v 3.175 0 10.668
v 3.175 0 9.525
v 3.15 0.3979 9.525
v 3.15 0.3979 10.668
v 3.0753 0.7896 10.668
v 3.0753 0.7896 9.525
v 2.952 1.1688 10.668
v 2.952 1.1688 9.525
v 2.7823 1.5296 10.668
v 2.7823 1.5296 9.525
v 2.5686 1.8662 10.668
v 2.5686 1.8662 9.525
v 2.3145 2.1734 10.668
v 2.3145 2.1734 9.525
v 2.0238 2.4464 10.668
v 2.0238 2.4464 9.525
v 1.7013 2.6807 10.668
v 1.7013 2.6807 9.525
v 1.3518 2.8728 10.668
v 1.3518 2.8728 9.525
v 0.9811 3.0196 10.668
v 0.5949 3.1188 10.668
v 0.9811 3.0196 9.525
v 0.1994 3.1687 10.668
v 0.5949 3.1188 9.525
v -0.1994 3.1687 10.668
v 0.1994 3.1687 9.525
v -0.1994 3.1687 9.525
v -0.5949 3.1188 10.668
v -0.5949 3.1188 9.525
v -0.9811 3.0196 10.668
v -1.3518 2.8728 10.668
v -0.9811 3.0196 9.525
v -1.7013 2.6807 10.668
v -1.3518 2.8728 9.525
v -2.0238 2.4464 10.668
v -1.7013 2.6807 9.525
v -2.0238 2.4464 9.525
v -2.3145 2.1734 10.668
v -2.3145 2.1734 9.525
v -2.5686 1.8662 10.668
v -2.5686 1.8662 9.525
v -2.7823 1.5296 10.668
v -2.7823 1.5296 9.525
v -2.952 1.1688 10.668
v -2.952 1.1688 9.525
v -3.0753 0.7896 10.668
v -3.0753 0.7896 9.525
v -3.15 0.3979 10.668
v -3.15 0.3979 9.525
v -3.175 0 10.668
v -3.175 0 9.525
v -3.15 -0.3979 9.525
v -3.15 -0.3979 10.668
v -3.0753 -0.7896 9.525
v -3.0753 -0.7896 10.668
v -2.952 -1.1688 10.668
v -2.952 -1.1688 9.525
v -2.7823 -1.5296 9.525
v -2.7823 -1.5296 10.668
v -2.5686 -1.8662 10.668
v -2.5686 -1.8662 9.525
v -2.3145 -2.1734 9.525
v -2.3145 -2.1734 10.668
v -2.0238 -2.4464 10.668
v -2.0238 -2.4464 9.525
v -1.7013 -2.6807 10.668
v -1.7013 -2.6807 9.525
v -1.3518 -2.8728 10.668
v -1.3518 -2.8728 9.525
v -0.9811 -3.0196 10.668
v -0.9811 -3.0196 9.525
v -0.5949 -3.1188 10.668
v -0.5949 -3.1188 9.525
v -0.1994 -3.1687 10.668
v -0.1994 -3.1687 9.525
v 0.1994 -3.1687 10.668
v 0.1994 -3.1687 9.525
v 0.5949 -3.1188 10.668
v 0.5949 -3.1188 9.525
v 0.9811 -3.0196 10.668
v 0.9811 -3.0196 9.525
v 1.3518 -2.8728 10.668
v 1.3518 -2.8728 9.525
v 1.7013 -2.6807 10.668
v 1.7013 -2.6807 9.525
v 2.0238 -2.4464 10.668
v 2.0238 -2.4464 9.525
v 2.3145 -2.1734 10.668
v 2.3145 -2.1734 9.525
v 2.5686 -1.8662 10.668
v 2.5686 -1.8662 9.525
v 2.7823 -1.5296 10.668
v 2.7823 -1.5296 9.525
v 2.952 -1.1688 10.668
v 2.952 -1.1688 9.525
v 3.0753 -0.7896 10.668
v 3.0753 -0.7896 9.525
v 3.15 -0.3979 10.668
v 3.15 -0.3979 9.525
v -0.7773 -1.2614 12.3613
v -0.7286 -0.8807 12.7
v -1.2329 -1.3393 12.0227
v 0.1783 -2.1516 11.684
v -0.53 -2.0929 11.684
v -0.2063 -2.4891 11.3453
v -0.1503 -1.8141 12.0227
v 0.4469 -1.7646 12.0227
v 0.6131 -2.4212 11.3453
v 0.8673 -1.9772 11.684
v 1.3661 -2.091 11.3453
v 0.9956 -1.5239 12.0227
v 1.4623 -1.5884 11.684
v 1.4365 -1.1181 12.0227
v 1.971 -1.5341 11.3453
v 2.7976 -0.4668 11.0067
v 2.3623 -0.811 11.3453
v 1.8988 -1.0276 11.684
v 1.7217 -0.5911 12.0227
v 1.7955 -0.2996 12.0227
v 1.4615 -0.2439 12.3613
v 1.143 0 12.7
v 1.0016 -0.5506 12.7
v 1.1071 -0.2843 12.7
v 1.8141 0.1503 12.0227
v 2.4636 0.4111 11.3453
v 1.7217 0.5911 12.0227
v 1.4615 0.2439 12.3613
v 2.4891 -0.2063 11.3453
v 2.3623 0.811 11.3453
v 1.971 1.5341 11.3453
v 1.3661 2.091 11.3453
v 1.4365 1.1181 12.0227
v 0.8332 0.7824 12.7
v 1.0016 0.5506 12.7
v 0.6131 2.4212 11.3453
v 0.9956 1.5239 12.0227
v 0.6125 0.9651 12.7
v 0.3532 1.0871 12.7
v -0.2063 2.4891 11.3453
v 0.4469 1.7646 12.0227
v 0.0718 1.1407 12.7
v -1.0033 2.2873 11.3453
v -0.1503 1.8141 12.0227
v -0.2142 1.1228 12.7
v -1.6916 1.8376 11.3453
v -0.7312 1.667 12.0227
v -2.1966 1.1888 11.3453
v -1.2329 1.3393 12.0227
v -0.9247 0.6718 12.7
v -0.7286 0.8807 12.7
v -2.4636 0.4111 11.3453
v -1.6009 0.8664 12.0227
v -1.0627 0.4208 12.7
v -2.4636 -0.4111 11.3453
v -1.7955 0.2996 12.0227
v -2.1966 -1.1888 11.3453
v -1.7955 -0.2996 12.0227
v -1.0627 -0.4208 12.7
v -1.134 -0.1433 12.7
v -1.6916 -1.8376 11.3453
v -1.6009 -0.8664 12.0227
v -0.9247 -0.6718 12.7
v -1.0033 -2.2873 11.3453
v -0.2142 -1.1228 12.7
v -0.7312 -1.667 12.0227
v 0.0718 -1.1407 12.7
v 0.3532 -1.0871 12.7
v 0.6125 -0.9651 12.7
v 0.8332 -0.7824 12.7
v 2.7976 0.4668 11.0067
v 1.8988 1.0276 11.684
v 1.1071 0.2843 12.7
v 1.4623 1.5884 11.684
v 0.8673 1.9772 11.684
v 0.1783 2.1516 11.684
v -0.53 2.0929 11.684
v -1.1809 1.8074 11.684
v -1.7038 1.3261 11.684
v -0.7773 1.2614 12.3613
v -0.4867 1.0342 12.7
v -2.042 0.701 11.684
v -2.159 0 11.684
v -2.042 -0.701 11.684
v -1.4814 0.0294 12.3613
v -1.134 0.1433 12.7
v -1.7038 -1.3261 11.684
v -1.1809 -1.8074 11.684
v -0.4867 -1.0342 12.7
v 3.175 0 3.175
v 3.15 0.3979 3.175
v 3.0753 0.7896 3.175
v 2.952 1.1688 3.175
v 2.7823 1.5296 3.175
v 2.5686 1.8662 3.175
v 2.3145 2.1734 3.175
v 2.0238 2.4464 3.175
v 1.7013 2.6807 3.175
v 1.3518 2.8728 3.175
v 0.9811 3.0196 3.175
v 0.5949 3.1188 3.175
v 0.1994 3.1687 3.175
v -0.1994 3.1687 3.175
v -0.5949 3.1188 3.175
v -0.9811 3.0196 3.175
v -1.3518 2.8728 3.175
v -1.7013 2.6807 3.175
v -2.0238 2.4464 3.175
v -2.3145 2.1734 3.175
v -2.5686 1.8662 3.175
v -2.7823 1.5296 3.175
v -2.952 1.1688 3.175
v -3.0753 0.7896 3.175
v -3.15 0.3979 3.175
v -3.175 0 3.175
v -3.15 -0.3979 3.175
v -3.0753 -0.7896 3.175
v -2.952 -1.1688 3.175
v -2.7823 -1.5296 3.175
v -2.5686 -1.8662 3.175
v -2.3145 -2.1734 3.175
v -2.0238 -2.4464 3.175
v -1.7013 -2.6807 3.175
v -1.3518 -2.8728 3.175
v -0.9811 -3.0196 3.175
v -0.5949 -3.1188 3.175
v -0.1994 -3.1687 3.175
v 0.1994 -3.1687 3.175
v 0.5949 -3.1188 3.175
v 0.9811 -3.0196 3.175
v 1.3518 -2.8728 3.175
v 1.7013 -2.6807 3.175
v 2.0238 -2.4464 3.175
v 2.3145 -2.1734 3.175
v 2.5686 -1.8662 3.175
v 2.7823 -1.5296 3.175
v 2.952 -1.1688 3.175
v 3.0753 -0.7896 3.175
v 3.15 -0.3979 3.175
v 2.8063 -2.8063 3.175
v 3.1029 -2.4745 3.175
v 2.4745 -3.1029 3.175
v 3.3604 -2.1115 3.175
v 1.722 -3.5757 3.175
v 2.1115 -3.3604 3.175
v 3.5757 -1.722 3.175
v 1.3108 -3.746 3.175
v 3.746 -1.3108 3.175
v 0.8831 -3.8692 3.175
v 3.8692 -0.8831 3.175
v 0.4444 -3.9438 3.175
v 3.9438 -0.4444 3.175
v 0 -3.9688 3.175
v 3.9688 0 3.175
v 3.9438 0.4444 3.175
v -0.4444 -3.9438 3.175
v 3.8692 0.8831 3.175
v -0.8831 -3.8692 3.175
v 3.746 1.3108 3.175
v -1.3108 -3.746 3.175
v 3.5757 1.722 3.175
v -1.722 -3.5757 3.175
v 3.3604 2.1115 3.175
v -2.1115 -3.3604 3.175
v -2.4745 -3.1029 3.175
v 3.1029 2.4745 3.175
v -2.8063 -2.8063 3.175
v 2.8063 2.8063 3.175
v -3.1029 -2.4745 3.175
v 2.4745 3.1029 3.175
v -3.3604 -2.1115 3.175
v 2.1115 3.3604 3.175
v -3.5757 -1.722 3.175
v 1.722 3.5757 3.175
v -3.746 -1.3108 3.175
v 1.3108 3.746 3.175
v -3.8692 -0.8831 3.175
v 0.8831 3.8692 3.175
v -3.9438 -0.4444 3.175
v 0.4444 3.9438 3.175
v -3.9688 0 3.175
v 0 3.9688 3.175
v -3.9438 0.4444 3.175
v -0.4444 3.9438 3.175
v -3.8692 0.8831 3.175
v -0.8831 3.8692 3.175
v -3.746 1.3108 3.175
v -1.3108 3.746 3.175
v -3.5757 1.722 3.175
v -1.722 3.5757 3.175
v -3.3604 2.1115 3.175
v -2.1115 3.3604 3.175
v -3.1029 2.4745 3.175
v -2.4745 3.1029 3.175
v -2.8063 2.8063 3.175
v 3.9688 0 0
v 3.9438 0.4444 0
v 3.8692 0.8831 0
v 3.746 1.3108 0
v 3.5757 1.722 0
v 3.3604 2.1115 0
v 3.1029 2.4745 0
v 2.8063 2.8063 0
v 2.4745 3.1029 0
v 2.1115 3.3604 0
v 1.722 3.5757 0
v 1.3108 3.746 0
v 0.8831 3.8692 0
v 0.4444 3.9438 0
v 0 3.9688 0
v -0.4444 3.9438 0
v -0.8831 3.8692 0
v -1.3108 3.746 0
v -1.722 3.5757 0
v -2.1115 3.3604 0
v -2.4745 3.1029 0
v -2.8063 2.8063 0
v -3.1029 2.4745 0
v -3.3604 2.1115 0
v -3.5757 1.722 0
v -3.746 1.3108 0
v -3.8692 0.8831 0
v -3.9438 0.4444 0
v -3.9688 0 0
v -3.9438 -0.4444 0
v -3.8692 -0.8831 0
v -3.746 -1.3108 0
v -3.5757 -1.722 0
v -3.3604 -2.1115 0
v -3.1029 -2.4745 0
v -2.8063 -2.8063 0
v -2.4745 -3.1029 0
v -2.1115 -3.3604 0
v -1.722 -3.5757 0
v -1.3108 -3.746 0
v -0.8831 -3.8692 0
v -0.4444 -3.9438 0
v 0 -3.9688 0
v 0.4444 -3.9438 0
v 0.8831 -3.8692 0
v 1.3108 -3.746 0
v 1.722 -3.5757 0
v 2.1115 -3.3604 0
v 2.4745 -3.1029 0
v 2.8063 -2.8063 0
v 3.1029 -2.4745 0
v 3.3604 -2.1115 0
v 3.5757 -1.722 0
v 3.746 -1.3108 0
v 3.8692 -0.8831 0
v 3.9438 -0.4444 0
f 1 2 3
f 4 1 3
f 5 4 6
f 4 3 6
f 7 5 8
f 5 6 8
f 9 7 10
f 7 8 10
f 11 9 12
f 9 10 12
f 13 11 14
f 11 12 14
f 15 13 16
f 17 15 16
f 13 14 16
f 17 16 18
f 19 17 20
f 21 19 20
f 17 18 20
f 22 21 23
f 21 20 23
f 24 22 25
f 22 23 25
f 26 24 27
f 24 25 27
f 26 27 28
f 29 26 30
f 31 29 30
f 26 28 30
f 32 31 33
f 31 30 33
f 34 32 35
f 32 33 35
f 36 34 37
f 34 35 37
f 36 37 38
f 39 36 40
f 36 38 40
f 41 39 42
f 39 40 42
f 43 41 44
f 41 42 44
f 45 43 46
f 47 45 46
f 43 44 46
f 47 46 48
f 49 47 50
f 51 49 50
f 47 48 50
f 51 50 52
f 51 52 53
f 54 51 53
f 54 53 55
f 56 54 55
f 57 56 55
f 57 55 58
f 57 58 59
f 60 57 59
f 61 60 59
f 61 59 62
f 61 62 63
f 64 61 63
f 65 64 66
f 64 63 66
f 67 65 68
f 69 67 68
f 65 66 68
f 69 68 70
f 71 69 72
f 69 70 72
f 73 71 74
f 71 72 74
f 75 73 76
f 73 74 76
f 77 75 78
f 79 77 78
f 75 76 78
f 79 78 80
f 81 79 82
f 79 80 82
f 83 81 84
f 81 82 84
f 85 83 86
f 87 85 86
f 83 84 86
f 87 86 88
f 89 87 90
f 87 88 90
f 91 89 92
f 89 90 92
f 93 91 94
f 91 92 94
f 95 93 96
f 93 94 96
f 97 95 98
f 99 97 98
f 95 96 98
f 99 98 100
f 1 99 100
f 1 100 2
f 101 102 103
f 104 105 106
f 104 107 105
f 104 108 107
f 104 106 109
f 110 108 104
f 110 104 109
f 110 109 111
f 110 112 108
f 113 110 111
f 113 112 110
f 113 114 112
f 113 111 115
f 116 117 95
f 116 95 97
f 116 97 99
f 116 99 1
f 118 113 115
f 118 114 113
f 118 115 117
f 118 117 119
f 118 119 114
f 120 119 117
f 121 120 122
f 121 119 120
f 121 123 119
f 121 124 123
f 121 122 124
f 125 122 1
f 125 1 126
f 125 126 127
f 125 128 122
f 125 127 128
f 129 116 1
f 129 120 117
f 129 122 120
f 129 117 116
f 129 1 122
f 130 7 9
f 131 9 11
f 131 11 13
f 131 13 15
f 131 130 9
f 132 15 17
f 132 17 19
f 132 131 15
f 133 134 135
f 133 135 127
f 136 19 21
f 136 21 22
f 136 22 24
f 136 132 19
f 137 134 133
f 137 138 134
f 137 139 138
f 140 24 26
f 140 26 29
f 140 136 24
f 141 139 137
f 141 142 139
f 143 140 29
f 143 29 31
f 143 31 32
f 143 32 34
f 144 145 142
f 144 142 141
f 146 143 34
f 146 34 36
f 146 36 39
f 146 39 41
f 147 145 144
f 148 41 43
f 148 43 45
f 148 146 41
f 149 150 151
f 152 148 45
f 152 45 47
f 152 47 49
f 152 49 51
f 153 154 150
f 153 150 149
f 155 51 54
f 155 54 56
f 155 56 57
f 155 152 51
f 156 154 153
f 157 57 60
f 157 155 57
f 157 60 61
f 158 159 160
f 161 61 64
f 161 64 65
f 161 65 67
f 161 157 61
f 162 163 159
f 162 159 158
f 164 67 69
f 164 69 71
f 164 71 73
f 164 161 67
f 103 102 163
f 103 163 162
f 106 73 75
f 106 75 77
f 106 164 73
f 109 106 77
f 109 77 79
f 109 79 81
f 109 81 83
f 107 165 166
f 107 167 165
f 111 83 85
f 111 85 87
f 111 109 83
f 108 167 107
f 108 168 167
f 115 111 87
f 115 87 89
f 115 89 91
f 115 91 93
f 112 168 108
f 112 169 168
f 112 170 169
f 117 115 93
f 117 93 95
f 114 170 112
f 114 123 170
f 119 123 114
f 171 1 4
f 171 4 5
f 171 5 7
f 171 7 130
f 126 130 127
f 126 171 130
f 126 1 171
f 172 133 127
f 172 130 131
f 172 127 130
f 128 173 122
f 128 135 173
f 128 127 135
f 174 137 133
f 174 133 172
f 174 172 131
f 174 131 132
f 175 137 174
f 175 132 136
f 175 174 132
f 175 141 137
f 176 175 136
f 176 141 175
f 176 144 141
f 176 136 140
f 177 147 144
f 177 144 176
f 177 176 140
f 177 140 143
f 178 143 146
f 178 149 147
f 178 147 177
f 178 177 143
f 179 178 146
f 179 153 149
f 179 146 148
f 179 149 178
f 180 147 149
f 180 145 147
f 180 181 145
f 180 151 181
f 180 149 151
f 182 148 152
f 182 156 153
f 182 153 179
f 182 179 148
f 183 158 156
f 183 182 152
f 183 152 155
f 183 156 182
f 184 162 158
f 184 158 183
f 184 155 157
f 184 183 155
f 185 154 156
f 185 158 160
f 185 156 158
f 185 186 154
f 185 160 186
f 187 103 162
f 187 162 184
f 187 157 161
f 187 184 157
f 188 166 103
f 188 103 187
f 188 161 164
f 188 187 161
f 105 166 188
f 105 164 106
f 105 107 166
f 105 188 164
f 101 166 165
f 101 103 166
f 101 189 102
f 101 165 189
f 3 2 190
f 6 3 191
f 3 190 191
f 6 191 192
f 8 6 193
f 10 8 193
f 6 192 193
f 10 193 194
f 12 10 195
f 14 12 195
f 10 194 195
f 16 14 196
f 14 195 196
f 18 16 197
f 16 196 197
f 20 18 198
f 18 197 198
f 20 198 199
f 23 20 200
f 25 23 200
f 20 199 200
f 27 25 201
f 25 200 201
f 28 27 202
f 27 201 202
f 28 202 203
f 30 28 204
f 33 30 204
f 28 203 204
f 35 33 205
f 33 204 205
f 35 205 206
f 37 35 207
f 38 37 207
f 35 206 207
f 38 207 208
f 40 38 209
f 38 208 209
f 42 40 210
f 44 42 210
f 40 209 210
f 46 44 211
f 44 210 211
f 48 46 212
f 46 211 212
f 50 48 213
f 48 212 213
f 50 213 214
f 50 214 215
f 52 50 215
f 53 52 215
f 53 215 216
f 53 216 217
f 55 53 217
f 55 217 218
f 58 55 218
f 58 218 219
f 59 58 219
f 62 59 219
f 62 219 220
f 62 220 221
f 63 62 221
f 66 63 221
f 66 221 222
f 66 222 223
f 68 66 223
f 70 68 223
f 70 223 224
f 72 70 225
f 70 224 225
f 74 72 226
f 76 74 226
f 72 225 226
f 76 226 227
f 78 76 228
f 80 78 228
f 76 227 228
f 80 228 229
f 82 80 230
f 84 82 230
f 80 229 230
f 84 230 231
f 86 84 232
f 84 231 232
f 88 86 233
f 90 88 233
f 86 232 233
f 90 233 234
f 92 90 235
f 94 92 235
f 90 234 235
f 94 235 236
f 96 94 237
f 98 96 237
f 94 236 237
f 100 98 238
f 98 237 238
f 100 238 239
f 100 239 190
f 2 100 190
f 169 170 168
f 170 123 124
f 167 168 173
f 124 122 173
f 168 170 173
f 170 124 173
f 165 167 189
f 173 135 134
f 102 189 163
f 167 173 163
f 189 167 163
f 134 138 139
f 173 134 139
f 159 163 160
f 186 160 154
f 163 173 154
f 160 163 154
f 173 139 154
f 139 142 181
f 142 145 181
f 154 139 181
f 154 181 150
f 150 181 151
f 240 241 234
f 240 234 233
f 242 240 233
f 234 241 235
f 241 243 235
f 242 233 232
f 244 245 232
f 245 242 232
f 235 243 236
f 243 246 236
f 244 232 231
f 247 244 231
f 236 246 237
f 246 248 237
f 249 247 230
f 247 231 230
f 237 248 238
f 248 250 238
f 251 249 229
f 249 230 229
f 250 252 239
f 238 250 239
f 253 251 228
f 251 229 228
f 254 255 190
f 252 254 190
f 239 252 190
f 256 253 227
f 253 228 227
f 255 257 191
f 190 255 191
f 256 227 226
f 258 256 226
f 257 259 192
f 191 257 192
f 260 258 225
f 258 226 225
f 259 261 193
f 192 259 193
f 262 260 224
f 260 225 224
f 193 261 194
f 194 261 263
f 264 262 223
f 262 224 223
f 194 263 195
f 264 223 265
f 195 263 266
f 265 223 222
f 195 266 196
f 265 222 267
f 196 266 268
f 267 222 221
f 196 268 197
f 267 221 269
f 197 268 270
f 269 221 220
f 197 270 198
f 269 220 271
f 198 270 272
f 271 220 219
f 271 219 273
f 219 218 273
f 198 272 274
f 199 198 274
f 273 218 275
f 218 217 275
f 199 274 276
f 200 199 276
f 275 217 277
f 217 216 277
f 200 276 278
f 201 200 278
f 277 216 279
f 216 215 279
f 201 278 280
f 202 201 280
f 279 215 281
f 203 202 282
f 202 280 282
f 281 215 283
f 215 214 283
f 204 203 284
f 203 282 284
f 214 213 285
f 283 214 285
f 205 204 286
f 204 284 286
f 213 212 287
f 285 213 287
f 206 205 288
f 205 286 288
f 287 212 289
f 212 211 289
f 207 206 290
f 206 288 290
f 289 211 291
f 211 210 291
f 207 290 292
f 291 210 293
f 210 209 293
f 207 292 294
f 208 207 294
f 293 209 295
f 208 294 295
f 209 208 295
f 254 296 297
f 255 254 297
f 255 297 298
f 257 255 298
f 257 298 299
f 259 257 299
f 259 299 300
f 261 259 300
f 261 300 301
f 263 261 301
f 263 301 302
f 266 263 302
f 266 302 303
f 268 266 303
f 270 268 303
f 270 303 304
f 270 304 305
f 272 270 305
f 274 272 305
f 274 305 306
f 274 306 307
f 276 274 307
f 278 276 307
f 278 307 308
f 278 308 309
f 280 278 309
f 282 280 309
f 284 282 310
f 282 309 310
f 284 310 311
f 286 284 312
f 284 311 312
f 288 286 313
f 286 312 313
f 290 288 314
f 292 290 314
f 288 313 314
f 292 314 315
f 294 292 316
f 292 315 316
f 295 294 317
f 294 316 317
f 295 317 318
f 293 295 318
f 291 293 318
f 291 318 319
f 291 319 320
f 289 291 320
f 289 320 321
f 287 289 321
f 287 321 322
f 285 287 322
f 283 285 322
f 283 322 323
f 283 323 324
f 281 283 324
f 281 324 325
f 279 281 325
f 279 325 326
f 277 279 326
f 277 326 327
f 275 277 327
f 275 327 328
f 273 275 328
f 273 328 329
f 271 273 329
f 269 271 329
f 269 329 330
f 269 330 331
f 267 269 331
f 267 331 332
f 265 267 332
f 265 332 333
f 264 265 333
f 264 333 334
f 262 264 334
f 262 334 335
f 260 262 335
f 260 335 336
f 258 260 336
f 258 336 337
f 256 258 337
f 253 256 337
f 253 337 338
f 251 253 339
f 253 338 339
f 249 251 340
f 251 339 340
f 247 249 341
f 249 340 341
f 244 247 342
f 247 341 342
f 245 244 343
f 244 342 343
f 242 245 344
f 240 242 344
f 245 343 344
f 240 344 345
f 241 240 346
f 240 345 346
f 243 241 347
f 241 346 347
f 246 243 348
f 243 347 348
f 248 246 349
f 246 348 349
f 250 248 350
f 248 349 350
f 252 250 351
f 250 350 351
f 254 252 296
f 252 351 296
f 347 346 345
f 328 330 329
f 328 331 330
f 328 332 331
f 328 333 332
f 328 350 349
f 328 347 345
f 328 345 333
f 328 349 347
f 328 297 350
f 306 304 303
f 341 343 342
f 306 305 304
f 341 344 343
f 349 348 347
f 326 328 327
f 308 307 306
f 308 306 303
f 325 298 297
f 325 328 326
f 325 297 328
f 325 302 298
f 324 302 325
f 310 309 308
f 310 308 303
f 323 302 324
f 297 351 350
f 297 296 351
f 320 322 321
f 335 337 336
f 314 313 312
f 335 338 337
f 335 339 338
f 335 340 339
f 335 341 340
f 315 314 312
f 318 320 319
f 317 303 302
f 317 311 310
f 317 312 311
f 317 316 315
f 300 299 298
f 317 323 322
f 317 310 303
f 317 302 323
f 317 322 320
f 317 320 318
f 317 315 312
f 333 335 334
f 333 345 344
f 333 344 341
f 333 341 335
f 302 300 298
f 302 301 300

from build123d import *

# Parameters (mm, degrees)
SKETCH_R     = 3.96875
PAD_DEPTH    = 3.175
SKETCH001_R  = 3.175
PAD001_DEPTH = 6.35
SKETCH002_R  = 3.175
PAD002_DEPTH = 3.175
CHAMFER_SIZE = 2.032


with BuildPart() as part:
    # Sketch → Pad (new body)
    with BuildSketch(Plane.XY):
        Circle(SKETCH_R)
    extrude(amount=PAD_DEPTH)

    # Sketch001 → Pad001 (new body)
    with BuildSketch(Plane.XY.offset(3.175)):
        Circle(SKETCH001_R)
    extrude(amount=PAD001_DEPTH)

    # Sketch002 → Pad002 (new body)
    with BuildSketch(Plane.XY.offset(9.525)):
        Circle(SKETCH002_R)
    extrude(amount=PAD002_DEPTH)

    # Chamfer
    chamfer_edges = [part.edges().sort_by_distance(p)[0] for p in [
        (-3.175, 0, 9.525),
        (-3.175, 0, 12.7),
    ]]
    chamfer(chamfer_edges, length=CHAMFER_SIZE)


solid = part.part
